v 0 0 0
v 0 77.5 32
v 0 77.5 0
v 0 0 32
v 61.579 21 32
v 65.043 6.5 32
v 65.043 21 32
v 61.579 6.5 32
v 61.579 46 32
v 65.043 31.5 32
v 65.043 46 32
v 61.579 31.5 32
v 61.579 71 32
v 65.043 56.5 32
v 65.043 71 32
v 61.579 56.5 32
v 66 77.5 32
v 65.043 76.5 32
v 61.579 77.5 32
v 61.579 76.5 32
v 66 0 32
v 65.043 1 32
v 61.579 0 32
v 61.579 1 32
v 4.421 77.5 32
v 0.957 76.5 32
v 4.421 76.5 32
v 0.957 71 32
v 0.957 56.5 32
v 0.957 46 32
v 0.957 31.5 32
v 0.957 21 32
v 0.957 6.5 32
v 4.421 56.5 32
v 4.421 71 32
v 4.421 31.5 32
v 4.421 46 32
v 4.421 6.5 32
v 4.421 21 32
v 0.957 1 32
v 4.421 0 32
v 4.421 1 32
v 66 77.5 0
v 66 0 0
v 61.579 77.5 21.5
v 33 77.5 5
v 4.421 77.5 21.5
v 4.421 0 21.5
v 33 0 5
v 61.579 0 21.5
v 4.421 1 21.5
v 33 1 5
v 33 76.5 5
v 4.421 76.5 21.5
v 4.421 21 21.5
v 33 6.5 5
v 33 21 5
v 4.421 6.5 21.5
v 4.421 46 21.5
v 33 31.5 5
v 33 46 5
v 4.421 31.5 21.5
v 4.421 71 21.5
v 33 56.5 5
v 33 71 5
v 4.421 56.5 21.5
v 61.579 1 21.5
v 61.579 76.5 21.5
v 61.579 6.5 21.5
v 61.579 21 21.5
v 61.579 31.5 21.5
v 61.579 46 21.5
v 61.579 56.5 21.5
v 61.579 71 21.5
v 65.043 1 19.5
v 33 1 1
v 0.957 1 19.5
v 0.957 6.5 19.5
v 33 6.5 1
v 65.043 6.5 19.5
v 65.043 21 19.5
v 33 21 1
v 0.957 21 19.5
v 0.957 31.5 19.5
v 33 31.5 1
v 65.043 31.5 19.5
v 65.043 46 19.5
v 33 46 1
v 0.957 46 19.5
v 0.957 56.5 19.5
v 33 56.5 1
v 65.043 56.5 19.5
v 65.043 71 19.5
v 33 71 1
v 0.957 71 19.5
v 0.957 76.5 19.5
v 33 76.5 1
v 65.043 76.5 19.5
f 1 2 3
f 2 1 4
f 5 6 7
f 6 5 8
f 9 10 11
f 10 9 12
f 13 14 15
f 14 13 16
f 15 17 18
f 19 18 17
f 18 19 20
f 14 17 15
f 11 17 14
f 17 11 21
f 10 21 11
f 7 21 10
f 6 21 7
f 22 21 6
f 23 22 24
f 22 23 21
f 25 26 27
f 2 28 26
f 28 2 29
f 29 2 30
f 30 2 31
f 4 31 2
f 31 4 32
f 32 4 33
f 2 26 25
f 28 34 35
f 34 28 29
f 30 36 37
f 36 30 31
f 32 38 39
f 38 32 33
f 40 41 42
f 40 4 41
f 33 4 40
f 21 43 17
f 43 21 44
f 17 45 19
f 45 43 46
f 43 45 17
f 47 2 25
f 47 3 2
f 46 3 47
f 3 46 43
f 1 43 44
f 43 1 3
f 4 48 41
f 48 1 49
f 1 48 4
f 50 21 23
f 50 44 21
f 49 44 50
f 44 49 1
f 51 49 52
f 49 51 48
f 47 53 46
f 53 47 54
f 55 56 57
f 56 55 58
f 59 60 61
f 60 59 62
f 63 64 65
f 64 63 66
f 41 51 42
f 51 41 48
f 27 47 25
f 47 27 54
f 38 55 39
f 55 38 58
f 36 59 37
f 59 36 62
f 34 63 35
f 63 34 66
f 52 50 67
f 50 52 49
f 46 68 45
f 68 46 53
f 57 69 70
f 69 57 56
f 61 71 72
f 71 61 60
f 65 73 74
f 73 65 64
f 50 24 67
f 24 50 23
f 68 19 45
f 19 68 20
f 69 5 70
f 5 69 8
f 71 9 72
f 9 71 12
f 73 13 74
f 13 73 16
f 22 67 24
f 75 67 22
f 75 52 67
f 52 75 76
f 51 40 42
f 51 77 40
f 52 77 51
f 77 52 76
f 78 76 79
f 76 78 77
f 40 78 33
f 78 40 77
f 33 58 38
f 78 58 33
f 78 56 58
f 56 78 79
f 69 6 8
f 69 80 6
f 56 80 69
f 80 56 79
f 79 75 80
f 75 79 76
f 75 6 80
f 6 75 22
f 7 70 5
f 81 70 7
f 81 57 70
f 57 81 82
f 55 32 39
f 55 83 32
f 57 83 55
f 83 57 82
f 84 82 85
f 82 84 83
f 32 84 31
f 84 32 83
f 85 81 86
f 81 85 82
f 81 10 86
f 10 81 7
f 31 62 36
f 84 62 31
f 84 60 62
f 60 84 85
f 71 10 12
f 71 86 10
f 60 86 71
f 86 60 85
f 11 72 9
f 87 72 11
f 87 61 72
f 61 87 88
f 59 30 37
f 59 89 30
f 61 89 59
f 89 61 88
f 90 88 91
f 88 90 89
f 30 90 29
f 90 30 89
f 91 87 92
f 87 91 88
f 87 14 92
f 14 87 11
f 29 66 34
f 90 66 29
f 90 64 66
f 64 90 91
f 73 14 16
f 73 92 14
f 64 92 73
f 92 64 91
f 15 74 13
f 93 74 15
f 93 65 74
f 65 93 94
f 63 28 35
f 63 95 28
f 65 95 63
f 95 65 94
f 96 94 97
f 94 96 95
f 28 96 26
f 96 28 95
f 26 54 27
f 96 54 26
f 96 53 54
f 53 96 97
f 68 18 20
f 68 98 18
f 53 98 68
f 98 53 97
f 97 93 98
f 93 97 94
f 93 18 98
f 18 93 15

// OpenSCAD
$fn=200;
THICK = 1;

TILE_L = 20;
TILE_COUNT = 6;

BOX_W = 64;
BOX_L = 75.5;
BOX_H = 32;

difference() {
    cube(size = [
        BOX_W + (THICK * 2),
        BOX_L + (THICK * 2), 
        BOX_H]);

    translate([33, -5, 38])
        rotate([0, 90, 90]) 
            cylinder(h = 200, r = 33, $fn=6);

    tile_slot(1);
    tile_slot(1 + TILE_L);

    tile_slot(6 + TILE_L);
    tile_slot(6 + (TILE_L * 2));

    tile_slot(11 + (TILE_L * 2));
    tile_slot(11 + (TILE_L * 3));
}

module tile_slot(y) {
    translate([33, y, 38])
        rotate([0, 90, 90]) 
            cylinder(h = 5.5, r = 37, $fn=6);
}
